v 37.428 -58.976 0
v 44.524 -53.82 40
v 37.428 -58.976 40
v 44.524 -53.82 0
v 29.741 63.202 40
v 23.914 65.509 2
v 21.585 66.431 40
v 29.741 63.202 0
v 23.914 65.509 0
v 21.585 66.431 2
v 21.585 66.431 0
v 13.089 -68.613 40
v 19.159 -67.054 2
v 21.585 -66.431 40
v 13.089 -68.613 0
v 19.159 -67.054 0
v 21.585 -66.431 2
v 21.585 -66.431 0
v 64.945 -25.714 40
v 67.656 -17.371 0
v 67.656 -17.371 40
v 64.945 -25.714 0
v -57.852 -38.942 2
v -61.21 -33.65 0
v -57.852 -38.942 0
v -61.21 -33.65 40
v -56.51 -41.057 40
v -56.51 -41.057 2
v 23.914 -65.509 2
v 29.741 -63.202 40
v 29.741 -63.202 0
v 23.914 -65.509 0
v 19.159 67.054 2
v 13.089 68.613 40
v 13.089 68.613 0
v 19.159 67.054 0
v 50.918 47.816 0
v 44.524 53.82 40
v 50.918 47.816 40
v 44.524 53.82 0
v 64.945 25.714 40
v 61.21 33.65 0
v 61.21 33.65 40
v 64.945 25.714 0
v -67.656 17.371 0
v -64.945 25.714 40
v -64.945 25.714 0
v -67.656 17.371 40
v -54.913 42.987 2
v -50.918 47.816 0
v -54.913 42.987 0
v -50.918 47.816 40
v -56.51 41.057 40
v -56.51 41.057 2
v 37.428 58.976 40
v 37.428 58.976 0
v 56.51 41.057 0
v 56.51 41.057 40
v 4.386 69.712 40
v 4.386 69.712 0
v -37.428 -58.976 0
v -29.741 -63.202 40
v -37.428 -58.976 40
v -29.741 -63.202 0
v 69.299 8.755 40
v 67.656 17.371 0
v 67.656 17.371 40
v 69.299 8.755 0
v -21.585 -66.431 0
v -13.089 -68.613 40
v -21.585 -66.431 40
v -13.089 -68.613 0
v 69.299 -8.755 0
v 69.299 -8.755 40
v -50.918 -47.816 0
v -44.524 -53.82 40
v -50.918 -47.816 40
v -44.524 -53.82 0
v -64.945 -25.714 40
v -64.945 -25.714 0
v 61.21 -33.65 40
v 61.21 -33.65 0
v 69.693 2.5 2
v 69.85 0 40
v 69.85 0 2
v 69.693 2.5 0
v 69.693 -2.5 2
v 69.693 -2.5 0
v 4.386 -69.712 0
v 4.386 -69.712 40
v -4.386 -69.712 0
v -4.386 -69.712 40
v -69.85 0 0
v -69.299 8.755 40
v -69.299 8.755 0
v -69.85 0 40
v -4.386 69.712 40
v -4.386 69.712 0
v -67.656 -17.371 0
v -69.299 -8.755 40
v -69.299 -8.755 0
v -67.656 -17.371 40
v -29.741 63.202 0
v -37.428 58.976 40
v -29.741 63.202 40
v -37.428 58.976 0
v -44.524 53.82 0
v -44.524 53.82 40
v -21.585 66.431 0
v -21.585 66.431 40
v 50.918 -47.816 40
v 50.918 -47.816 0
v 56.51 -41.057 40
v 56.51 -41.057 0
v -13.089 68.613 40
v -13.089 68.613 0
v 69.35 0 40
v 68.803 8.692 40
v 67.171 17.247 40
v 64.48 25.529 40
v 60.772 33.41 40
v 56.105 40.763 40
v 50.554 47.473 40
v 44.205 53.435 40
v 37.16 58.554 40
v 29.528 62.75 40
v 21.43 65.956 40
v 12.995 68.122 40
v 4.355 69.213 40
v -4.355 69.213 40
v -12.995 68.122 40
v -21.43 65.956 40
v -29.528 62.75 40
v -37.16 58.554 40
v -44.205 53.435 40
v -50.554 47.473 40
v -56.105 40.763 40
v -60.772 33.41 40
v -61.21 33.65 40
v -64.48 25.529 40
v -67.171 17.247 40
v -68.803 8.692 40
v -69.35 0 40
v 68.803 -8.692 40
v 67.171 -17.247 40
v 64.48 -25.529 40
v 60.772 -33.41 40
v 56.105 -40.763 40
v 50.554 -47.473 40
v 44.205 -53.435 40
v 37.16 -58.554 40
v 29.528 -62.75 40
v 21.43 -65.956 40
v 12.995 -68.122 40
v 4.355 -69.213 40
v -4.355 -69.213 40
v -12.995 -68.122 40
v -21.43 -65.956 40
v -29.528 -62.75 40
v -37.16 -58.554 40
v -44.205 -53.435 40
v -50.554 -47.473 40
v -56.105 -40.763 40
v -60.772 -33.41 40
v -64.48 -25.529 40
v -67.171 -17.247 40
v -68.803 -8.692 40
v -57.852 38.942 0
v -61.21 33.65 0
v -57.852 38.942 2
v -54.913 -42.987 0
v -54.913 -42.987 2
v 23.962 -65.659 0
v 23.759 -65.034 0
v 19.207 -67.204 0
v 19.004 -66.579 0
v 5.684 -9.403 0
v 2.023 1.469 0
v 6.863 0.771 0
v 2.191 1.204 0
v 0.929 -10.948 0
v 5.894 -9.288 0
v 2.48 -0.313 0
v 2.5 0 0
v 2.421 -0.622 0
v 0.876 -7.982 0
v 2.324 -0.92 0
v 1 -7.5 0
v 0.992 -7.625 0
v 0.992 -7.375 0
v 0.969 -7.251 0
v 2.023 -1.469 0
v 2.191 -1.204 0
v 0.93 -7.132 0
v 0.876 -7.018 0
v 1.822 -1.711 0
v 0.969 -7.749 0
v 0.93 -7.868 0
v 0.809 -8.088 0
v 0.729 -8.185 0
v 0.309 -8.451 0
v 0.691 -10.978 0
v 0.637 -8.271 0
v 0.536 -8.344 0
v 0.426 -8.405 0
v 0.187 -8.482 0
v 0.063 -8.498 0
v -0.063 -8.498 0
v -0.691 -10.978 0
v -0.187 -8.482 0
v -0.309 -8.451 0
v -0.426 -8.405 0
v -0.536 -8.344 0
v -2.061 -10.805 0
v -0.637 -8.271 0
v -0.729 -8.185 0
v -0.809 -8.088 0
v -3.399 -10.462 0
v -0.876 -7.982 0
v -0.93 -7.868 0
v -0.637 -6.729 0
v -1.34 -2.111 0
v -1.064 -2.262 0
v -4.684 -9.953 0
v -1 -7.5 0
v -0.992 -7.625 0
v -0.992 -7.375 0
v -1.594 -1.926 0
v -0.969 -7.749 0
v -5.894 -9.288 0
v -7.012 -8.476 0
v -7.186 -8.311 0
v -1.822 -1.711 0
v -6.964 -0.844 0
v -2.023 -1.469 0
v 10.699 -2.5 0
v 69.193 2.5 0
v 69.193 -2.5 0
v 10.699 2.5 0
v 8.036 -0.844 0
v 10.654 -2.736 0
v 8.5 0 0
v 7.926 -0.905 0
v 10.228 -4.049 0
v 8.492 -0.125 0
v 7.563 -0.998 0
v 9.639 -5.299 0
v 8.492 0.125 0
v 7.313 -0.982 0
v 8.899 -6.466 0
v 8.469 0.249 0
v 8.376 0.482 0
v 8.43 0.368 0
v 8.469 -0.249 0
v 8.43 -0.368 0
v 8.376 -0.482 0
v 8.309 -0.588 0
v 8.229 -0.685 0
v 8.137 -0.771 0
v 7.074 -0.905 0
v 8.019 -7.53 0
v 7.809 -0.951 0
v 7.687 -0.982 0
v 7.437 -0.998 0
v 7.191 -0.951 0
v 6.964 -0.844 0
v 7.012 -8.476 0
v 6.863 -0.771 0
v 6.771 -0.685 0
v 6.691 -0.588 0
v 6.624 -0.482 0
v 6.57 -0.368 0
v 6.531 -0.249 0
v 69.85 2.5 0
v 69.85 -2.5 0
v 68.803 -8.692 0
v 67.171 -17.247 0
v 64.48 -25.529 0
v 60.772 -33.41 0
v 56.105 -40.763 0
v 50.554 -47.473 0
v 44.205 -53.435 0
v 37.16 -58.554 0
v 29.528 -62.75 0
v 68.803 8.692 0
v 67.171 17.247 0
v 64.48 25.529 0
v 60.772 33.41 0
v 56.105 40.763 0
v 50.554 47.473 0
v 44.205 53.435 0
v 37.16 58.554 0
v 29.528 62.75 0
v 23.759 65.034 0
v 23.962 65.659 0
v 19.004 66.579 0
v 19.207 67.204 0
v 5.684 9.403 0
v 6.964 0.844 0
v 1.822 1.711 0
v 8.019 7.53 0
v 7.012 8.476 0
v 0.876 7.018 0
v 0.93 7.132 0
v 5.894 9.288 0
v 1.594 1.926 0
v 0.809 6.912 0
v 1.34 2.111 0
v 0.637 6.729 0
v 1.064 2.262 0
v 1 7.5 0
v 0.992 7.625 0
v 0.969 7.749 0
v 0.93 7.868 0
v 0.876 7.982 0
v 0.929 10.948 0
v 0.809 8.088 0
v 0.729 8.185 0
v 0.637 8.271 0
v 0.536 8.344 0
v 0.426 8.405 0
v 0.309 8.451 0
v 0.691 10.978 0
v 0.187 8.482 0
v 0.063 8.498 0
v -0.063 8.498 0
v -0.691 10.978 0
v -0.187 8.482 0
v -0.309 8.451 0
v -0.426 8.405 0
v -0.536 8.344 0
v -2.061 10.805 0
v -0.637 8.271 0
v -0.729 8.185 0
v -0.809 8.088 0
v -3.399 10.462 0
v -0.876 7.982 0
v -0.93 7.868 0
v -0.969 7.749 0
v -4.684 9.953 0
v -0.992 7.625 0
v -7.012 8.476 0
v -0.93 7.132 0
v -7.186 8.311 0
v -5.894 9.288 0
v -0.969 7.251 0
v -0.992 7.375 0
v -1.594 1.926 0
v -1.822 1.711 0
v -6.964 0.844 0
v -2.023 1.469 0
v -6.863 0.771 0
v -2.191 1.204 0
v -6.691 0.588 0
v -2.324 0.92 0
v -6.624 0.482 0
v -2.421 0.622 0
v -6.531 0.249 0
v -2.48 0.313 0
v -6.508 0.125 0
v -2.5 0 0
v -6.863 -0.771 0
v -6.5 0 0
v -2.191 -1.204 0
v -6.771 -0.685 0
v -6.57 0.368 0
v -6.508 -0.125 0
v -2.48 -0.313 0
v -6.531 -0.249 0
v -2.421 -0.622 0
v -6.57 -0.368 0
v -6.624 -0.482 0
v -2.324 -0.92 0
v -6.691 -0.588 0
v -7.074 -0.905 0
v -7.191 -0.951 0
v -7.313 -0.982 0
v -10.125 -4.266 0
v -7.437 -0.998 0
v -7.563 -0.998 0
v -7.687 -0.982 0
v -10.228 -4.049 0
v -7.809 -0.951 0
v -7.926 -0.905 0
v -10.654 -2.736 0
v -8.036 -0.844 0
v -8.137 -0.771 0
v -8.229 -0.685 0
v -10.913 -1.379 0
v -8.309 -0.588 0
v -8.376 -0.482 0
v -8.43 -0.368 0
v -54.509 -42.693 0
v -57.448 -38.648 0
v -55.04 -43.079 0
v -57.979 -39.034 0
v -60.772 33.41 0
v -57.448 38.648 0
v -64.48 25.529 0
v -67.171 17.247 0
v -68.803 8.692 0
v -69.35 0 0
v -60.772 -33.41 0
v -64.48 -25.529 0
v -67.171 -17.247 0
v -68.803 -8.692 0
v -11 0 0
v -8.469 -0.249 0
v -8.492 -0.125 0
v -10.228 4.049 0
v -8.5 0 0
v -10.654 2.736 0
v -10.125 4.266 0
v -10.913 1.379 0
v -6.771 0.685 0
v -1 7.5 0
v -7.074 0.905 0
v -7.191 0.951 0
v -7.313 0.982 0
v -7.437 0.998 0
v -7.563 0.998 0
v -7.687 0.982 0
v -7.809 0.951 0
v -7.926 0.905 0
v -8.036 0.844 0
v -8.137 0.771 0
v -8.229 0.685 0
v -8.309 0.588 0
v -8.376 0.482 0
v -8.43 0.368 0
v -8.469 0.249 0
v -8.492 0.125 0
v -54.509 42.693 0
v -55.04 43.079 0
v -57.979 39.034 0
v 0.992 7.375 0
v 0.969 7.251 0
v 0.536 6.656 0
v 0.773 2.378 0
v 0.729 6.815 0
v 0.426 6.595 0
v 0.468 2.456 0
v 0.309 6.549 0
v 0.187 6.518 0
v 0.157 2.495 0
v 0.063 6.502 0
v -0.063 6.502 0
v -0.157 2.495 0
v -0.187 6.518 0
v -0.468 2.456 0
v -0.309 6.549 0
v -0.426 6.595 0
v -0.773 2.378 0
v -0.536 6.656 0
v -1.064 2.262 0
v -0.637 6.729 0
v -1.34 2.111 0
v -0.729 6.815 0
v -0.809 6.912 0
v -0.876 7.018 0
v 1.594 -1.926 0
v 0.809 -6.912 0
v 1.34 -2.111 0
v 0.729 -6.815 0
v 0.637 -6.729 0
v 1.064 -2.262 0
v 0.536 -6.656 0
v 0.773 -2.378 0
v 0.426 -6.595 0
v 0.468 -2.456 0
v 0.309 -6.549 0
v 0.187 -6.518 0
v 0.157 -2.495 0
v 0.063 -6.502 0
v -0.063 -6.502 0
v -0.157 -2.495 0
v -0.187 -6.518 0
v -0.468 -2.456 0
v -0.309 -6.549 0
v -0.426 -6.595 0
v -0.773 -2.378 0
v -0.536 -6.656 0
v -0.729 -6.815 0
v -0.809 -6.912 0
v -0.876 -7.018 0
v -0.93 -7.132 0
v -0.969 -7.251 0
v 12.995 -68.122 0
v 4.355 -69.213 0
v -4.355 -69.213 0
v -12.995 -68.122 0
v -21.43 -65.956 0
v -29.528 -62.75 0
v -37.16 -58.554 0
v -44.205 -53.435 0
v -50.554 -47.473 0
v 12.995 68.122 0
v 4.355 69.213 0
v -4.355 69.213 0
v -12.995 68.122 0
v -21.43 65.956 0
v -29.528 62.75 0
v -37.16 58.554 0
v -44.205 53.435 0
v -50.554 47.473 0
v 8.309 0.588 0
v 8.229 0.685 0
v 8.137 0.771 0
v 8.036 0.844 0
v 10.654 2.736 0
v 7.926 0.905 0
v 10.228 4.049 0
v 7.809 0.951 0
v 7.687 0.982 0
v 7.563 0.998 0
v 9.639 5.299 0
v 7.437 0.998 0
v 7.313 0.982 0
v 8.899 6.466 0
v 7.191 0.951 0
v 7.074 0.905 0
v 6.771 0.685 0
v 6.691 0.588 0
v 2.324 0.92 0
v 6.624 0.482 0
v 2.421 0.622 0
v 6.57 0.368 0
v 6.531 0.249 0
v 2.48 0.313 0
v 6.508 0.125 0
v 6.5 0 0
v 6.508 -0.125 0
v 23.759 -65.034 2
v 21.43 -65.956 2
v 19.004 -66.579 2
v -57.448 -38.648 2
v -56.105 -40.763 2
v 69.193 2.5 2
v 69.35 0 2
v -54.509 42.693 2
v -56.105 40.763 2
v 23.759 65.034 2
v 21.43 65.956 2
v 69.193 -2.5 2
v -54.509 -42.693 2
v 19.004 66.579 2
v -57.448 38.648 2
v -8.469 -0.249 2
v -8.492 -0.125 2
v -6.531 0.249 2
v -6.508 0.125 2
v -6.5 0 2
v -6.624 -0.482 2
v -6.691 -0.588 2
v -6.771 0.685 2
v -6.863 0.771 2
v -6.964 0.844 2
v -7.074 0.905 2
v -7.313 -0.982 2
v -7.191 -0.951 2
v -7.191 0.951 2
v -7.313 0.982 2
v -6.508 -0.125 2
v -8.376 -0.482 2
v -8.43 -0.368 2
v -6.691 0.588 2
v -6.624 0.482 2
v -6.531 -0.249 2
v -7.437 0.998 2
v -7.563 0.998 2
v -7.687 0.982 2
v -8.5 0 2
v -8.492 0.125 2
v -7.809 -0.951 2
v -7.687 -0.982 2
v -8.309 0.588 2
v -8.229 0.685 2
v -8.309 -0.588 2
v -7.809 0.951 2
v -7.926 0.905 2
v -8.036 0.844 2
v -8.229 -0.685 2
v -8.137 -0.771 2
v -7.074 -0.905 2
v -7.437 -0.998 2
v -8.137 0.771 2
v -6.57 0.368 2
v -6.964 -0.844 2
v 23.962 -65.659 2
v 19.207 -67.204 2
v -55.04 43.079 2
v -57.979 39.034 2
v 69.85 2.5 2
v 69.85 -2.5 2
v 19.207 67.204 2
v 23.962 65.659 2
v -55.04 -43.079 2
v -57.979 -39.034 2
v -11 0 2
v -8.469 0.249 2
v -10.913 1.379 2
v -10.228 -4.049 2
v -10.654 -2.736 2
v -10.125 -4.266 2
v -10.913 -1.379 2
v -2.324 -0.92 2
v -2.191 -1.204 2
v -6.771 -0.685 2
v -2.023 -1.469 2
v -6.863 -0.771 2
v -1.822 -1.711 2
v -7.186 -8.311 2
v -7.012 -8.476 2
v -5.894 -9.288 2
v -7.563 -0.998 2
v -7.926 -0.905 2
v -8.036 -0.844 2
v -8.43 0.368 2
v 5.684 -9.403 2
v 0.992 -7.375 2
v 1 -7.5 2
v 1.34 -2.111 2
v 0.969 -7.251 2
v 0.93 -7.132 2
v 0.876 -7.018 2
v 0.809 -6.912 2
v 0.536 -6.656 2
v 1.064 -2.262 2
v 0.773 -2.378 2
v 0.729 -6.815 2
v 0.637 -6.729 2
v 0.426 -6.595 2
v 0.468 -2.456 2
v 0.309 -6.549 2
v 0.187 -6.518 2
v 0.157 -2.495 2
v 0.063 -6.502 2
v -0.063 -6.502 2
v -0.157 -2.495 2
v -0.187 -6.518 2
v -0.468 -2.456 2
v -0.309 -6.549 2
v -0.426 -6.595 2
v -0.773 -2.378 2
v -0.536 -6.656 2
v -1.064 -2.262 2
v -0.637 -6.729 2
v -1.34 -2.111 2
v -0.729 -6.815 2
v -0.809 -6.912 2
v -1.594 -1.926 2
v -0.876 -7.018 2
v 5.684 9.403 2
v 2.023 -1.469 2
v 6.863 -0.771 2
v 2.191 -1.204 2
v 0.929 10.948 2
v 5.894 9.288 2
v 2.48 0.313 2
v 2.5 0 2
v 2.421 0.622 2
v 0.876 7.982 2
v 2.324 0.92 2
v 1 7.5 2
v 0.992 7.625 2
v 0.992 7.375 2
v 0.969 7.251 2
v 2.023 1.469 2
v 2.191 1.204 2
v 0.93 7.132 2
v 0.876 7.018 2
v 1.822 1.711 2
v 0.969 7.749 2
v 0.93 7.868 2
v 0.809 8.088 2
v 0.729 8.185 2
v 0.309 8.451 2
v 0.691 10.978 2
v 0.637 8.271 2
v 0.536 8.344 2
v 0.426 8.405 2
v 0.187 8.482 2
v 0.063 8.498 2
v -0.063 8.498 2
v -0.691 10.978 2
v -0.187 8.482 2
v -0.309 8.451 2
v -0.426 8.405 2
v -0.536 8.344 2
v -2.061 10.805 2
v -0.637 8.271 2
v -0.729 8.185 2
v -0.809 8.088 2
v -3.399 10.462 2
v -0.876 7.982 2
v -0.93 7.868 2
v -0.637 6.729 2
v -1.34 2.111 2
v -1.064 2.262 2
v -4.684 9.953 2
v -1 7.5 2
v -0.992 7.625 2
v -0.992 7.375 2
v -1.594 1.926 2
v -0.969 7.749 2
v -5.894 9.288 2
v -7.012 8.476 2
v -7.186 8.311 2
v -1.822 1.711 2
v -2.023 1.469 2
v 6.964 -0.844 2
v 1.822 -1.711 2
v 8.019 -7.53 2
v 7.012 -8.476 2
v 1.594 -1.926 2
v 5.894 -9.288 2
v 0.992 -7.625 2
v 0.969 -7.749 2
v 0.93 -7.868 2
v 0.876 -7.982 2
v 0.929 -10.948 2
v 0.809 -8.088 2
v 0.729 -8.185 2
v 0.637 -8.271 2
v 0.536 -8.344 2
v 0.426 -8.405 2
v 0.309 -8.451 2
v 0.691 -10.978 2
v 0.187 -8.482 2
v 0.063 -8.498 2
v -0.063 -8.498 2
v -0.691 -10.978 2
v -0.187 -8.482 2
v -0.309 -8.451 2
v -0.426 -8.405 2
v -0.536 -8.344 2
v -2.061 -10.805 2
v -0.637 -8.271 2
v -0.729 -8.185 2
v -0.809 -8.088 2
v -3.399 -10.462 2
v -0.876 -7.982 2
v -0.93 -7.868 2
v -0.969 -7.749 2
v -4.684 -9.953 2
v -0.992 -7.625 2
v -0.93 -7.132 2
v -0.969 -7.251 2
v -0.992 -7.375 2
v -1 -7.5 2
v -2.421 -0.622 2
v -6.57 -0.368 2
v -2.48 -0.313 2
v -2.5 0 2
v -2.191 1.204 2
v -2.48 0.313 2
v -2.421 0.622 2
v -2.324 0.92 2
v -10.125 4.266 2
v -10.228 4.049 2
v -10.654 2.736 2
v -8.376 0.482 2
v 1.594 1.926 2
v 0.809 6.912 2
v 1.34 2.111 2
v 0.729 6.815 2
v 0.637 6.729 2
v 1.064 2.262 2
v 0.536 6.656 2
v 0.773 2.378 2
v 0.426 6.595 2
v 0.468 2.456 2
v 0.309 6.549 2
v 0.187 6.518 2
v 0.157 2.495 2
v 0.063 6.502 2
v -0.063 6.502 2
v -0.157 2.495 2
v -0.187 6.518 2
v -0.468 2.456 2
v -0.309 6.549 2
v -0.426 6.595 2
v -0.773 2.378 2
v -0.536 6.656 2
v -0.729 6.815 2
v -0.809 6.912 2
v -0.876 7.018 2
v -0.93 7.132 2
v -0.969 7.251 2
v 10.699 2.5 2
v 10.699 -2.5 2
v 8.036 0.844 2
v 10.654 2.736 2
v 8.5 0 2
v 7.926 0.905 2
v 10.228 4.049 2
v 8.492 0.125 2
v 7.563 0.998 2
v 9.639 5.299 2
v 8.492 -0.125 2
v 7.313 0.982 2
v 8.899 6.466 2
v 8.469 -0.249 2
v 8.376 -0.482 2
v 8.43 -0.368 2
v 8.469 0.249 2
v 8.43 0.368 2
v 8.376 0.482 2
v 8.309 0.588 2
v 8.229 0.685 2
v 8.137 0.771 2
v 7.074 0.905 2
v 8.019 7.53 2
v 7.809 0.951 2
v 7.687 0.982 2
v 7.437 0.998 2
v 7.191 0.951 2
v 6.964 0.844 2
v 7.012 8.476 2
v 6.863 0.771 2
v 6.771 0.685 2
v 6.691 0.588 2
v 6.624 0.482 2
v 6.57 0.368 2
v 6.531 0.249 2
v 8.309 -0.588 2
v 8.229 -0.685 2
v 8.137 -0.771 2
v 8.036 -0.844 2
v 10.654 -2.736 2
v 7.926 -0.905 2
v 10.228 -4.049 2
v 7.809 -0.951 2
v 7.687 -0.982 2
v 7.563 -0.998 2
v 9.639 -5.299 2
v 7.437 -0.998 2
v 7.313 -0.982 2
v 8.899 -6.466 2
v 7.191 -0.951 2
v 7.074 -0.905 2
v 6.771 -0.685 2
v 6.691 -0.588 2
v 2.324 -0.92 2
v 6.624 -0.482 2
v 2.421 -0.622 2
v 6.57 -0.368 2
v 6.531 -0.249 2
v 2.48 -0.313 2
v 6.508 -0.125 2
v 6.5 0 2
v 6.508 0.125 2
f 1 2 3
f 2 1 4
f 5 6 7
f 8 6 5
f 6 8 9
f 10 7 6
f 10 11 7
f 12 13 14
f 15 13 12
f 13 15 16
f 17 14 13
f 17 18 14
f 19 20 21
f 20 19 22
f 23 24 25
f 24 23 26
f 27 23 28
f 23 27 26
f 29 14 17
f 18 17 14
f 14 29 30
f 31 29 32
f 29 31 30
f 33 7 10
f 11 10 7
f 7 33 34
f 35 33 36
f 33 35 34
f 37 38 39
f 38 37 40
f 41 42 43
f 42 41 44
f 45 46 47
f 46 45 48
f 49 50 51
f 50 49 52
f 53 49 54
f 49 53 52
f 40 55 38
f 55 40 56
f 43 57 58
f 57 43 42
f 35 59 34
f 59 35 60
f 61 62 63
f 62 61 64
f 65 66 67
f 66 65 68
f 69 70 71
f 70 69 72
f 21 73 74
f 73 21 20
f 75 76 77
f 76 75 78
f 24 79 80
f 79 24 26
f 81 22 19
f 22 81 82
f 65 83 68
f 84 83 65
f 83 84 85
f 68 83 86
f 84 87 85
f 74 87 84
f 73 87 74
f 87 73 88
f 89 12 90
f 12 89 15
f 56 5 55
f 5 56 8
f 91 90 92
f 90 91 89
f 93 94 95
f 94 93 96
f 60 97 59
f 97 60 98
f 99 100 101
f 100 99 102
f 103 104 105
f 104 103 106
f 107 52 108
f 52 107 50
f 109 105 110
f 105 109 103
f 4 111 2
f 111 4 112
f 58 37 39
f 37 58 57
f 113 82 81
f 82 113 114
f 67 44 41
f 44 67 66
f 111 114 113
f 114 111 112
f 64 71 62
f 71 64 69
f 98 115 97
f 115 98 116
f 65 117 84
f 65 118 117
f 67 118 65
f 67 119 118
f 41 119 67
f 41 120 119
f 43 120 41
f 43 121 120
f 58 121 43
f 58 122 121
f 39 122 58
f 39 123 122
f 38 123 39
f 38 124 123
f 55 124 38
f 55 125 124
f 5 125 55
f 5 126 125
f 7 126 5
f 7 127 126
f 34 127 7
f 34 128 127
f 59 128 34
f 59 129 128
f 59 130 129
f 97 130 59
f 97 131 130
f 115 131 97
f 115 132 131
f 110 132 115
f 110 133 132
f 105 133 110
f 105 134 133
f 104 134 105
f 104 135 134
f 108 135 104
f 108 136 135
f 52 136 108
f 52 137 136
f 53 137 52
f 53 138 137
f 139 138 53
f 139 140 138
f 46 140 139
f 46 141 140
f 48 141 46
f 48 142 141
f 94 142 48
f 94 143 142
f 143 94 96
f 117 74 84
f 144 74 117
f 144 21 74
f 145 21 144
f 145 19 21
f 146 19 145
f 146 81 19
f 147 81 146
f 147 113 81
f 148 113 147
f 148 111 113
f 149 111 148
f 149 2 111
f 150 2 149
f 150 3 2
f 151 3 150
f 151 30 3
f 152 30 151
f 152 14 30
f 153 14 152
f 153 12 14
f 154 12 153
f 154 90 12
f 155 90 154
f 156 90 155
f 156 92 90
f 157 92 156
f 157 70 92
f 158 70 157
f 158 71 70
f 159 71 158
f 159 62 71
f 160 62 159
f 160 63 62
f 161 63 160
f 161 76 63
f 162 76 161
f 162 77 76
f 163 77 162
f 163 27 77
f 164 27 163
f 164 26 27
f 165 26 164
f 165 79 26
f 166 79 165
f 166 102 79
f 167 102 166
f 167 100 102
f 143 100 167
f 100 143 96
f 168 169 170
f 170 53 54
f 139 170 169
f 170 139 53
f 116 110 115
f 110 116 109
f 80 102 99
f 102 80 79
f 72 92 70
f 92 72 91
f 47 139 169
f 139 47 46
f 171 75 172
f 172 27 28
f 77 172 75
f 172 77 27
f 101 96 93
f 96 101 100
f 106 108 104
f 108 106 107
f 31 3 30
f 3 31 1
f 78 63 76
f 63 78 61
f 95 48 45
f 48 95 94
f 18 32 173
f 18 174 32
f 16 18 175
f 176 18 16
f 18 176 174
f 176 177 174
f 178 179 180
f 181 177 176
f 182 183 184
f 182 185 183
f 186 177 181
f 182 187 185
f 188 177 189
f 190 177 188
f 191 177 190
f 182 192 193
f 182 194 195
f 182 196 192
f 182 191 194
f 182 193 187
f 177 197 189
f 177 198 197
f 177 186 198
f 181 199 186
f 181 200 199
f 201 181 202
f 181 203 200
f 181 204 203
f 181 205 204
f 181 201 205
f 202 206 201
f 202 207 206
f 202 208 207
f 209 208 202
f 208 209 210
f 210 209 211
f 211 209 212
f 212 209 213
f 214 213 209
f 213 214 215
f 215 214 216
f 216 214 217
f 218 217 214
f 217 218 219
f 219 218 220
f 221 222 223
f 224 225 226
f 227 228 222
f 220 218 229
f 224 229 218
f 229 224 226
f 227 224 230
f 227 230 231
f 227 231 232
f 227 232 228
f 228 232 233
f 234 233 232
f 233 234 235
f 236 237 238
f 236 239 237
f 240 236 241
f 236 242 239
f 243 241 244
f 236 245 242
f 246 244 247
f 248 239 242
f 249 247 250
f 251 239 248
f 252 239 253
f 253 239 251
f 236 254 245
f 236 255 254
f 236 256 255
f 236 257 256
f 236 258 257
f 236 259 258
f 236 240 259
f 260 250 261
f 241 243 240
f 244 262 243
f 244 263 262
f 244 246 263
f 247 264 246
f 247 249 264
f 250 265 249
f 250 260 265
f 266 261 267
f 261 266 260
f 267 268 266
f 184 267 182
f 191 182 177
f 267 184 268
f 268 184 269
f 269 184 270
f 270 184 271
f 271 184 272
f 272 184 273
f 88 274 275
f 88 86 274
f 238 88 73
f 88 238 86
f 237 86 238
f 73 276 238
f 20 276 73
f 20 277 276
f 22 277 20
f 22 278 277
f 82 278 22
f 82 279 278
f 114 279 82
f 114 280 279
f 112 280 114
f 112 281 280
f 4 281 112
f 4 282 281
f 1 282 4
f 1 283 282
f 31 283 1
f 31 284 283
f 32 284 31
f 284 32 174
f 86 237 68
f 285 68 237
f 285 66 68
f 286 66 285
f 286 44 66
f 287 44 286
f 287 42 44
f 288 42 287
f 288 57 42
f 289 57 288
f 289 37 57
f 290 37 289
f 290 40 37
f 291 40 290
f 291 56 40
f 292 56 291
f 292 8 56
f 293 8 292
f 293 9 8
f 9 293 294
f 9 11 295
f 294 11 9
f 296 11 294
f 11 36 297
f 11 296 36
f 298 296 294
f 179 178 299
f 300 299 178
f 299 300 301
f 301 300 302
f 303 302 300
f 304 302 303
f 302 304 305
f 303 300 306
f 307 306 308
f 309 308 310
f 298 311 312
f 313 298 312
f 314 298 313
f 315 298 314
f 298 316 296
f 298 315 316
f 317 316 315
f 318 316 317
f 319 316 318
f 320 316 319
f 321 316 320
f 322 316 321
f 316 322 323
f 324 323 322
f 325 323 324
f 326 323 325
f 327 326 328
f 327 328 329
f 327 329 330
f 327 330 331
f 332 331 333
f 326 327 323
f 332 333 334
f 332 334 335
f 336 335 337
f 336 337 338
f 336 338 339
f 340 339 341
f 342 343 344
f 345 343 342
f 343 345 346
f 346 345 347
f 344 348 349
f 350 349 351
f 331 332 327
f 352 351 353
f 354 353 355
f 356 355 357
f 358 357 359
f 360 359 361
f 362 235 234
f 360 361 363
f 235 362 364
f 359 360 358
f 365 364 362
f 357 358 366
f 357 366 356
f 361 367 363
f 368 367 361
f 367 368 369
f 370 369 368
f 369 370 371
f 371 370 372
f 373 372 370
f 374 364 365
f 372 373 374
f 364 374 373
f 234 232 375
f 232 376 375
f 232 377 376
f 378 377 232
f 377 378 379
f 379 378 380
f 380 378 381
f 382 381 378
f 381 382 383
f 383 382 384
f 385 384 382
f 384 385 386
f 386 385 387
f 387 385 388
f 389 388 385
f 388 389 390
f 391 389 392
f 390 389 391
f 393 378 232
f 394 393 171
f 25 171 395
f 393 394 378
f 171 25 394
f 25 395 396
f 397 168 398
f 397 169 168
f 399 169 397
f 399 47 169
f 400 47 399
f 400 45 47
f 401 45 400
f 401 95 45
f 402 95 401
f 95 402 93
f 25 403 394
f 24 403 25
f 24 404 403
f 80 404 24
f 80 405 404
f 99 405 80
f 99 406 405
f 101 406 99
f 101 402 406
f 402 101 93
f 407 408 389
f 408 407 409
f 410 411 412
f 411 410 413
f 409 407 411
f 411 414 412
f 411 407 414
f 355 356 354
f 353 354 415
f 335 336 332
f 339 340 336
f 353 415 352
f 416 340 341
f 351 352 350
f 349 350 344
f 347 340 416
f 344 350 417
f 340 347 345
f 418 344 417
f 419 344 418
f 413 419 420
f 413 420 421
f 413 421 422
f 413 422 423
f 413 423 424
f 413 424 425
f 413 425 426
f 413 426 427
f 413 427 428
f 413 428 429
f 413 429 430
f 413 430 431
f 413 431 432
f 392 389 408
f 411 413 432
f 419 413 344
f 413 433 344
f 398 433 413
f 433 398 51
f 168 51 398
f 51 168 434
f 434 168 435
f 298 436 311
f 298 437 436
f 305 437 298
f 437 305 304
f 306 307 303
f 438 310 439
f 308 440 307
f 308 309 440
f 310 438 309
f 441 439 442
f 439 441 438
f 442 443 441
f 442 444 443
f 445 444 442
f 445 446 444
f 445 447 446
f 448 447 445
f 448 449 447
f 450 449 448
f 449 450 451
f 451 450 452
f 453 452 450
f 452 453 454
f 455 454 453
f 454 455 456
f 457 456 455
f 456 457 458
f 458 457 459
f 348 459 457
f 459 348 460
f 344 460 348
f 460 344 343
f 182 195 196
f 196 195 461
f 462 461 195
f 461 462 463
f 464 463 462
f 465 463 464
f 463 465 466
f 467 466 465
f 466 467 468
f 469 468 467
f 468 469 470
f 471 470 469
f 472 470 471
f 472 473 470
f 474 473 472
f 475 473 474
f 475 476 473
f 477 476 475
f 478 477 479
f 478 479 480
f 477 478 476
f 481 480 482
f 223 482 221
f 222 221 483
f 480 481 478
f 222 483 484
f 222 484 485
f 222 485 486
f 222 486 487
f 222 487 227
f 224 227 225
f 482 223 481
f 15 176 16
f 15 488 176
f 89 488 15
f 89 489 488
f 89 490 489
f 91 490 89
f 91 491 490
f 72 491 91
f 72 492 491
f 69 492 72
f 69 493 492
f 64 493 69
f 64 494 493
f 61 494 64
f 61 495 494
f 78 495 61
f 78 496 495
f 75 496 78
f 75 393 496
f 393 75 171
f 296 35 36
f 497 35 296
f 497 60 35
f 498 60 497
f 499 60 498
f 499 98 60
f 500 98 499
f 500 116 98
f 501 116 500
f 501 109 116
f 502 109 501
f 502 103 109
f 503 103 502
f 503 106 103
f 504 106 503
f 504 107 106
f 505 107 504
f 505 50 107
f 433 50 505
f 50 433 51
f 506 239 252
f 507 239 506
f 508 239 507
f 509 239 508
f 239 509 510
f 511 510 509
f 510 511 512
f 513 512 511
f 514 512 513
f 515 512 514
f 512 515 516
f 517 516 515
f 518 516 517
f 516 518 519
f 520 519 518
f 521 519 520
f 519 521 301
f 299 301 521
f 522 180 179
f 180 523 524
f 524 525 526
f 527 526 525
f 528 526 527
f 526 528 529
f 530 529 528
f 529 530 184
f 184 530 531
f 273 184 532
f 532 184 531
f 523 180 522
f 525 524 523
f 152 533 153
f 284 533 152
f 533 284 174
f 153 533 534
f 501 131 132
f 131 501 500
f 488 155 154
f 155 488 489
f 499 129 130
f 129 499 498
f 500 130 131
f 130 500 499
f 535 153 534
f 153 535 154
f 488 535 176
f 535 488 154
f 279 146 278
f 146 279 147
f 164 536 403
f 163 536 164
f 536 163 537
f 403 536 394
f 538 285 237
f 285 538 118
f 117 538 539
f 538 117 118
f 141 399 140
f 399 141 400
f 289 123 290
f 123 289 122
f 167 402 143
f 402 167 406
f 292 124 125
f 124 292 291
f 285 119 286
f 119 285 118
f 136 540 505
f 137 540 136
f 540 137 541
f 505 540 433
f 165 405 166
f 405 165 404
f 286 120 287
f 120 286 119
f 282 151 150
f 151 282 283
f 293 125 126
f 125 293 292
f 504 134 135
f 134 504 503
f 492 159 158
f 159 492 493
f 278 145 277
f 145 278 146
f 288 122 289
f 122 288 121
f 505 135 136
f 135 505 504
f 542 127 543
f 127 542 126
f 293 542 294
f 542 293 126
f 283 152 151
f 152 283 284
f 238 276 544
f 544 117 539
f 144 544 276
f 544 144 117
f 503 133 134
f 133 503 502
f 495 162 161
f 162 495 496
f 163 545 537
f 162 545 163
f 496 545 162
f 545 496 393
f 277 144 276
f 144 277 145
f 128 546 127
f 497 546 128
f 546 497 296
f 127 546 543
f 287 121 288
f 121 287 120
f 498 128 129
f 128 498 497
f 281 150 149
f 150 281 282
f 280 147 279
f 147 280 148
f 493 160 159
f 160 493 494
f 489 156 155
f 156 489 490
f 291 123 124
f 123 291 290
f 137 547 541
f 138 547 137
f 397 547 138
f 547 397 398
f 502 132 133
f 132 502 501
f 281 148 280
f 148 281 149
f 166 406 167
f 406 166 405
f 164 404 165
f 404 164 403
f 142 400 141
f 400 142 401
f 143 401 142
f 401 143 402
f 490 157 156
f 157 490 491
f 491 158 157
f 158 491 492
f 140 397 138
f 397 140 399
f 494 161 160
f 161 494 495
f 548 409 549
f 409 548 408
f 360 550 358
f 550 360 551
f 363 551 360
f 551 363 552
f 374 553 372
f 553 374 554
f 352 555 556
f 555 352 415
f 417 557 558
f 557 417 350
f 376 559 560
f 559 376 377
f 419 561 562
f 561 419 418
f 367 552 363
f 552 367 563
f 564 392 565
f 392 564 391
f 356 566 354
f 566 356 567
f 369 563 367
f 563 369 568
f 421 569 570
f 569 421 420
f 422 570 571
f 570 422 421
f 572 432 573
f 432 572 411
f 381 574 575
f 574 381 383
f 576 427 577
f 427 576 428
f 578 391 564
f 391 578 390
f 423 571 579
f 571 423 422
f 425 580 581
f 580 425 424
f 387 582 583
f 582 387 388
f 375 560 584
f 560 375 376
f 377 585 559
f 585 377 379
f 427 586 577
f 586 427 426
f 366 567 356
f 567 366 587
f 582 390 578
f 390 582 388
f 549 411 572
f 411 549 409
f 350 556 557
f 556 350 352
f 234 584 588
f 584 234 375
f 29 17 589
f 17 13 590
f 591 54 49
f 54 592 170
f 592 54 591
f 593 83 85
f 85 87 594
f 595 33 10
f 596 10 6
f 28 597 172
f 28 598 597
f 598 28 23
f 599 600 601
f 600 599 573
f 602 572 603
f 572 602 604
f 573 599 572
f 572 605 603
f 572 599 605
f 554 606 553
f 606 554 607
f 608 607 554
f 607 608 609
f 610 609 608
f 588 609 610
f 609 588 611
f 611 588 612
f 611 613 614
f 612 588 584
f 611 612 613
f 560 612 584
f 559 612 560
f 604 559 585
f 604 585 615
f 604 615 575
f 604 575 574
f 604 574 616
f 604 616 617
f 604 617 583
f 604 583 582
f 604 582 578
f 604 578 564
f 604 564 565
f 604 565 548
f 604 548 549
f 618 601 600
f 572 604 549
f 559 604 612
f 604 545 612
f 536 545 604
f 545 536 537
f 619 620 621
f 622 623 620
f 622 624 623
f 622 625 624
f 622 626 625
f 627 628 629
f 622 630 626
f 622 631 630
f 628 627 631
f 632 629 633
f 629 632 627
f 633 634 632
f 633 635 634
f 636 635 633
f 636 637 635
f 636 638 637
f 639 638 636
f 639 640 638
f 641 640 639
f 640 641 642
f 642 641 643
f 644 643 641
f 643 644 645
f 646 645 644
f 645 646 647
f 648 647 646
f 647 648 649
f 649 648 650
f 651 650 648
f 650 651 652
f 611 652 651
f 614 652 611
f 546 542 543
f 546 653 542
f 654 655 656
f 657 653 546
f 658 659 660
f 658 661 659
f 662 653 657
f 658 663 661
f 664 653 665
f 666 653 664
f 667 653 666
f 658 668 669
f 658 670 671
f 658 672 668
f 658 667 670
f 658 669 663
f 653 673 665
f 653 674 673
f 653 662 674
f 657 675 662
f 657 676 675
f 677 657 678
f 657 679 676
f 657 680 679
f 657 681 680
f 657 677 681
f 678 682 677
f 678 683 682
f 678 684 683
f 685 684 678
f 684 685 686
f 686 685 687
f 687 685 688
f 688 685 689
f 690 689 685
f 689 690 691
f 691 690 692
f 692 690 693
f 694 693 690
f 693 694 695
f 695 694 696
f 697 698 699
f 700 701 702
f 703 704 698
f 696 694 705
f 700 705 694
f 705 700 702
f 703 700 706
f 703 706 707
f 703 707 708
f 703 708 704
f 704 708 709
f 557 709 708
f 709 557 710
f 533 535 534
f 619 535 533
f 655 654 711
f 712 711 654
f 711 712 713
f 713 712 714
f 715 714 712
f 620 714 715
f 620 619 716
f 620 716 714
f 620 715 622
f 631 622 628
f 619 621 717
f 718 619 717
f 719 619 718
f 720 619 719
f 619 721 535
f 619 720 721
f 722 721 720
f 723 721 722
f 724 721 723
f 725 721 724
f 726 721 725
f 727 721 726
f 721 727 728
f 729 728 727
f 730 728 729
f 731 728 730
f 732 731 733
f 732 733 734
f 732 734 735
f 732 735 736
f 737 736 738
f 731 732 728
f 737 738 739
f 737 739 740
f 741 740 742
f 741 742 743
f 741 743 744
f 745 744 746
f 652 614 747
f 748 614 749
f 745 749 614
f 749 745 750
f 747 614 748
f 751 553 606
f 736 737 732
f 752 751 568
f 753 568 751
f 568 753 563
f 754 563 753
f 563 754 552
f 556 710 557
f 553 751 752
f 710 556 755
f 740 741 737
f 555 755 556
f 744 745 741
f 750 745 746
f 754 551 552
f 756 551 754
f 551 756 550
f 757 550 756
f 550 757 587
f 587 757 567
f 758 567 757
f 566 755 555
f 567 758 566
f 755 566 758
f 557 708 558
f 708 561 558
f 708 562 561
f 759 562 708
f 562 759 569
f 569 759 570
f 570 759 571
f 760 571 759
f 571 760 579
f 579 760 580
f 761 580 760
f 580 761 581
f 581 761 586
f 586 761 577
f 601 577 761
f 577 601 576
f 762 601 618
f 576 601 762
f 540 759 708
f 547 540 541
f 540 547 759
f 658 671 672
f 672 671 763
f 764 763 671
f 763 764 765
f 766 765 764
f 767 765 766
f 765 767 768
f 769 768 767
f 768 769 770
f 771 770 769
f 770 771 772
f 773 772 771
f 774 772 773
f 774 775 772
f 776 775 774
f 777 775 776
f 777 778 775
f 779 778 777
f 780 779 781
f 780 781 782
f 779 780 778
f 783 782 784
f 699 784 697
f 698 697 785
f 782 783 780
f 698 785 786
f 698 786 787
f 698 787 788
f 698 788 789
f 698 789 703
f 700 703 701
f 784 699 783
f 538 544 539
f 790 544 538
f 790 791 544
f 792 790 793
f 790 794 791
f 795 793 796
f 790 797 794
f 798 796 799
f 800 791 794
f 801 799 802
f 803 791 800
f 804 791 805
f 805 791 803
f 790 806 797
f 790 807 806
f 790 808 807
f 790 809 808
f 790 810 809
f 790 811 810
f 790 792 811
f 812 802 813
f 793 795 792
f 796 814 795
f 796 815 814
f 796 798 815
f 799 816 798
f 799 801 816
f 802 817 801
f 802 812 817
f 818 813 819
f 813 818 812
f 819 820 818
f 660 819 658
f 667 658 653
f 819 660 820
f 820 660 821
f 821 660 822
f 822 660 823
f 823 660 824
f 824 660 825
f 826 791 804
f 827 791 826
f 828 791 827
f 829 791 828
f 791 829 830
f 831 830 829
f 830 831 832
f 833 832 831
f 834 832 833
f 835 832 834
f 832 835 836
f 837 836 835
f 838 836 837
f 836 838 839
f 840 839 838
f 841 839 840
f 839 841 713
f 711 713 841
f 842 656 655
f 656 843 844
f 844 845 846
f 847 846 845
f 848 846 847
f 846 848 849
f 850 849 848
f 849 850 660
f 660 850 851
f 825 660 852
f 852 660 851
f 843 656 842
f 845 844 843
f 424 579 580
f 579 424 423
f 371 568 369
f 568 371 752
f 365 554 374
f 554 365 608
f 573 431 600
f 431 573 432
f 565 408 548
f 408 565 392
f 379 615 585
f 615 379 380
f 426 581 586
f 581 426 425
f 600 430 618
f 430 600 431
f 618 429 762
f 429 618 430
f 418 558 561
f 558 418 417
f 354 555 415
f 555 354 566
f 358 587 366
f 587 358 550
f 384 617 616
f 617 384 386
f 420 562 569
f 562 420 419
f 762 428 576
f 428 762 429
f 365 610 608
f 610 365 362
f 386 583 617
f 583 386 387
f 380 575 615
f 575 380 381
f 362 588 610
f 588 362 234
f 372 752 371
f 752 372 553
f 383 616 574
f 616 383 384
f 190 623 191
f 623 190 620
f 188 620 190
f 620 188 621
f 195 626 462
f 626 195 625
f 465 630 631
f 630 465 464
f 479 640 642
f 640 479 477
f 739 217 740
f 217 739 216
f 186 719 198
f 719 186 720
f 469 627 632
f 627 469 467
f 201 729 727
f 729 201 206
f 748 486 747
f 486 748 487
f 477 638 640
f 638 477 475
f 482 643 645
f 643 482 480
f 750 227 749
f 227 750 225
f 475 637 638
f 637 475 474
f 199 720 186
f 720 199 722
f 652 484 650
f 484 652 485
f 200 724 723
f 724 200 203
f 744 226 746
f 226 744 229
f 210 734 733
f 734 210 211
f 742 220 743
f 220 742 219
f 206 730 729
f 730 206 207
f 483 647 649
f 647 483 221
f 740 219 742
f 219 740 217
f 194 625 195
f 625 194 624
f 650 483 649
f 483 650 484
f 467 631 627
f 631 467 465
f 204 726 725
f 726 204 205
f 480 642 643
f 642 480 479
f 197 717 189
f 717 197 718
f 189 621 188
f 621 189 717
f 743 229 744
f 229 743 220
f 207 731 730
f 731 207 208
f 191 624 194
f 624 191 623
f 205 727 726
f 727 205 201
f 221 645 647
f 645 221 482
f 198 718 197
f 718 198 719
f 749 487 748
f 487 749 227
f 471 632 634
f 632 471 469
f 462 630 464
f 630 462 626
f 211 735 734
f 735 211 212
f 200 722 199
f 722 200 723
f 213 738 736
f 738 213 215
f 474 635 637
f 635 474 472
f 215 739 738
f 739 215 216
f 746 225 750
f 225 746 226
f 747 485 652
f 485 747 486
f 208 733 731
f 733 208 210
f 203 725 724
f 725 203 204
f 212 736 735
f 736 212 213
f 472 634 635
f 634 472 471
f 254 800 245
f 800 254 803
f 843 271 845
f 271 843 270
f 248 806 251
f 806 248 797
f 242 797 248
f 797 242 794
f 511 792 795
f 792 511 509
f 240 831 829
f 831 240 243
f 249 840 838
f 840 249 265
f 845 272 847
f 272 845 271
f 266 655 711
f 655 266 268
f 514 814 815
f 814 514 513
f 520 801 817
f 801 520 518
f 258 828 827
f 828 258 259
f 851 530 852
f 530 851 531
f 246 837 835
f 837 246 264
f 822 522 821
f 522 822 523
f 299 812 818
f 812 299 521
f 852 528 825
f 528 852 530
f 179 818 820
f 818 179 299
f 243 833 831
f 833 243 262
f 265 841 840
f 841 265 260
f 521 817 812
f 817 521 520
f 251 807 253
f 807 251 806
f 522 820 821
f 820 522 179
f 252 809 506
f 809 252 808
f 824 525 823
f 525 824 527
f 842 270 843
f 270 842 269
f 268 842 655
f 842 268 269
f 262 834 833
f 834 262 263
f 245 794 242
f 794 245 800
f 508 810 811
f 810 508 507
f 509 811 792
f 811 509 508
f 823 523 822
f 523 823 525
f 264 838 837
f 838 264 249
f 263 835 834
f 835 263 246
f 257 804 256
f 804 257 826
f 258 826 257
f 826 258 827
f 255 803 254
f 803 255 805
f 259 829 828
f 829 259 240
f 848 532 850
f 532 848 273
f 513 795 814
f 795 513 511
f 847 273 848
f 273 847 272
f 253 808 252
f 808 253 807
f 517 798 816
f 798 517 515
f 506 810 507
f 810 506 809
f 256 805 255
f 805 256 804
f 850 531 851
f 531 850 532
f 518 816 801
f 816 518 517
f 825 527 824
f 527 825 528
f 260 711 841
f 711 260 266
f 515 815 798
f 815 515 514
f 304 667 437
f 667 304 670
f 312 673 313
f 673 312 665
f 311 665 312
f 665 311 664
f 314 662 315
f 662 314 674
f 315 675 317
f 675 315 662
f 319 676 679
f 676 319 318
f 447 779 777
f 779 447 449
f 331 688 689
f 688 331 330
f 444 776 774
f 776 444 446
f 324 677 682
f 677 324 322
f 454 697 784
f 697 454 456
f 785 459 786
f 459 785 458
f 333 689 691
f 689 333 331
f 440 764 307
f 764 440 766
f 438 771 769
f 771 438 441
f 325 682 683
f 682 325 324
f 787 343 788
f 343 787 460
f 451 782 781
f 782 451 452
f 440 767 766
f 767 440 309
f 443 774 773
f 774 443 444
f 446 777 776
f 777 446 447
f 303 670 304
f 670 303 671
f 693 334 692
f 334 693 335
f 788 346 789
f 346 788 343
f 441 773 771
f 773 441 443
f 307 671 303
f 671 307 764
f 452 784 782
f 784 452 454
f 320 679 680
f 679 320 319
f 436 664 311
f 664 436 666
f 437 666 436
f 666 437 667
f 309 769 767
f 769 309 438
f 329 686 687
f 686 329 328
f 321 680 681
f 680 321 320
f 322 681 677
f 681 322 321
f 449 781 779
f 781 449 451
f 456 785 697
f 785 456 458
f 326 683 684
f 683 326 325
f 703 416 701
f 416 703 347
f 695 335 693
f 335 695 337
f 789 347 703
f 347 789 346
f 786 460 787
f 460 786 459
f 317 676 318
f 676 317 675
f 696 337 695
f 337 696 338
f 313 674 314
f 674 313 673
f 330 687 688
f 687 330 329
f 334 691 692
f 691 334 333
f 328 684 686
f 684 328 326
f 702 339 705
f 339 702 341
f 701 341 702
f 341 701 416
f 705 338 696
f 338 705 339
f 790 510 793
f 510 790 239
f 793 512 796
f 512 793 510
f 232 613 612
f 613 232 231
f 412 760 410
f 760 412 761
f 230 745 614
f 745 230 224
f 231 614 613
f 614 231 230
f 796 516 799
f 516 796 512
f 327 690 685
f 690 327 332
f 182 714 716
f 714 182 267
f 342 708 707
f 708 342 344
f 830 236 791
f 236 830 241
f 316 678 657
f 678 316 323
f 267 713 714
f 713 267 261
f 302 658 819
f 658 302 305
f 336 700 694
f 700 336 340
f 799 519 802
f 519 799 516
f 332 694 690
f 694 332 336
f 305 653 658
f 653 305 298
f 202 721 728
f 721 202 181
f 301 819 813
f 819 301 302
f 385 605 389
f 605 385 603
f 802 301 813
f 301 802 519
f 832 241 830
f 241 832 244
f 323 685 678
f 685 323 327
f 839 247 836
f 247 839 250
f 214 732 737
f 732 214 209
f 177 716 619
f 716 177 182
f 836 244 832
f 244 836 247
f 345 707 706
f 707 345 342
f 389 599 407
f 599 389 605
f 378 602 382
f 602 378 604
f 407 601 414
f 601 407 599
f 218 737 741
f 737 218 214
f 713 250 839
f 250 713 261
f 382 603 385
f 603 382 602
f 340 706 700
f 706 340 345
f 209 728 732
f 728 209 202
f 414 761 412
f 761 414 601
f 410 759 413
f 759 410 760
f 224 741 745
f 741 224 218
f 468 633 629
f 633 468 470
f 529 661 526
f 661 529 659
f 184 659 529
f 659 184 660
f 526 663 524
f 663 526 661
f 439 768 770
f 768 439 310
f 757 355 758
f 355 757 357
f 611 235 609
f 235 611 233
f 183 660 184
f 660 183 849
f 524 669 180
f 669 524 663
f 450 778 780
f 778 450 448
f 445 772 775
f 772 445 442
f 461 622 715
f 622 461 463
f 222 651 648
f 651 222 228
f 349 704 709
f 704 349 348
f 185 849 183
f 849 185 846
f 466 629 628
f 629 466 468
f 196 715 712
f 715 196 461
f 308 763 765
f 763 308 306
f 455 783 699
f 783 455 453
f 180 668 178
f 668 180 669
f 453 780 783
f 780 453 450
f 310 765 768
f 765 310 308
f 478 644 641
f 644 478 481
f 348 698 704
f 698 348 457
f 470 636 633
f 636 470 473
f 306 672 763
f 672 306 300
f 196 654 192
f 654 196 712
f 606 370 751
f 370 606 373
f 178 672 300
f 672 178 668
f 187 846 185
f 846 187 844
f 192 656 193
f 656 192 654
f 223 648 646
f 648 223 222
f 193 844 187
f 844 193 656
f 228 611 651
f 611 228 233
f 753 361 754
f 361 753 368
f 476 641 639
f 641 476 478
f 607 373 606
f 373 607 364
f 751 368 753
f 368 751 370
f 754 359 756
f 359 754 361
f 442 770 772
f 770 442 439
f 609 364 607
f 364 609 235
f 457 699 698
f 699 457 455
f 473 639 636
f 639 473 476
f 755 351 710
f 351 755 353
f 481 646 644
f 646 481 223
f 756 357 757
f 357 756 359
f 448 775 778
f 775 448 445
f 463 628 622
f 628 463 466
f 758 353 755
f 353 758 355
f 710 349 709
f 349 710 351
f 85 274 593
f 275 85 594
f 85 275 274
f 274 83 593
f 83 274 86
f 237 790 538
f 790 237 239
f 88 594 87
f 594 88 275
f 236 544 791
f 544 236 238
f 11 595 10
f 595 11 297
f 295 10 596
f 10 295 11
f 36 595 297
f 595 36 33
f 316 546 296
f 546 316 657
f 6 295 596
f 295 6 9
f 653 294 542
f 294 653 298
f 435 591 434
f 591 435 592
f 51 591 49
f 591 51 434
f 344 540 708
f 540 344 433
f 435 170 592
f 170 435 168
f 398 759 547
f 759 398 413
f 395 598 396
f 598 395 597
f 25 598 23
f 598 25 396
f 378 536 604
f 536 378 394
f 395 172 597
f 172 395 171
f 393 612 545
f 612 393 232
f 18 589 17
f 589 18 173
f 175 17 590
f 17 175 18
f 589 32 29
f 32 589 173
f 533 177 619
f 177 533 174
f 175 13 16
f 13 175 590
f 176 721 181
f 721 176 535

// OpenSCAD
// shroud

$fn=50;

shroud_height=40;
shroud_diam=5.5*25.4;
wall_thickness=1;

arm_height=2;
arm_width=5;
num_arms=5;

mot_height=arm_height;
motdiam=22;
midhole_diam=5;
screwhole_diam=15;

module shroud() {
    difference() {
        cylinder(shroud_height,d=shroud_diam);
        cylinder(shroud_height,d=shroud_diam-wall_thickness);
    }
}

module mount() {
    difference() {
        cylinder(mot_height,d=motdiam);
        cylinder(mot_height,d=midhole_diam);
        for (k=[-1,1]) {
            #translate([k*screwhole_diam/2,0,0]) cylinder(mot_height,d=2);
            #translate([0,k*screwhole_diam/2,0]) cylinder(mot_height,d=2);
        }
    }
}

module arms() {
    fudge=1;  // make arms connect to motor and shroud
    for (angle=[0:360/num_arms:360]) {
        rotate([0,0,angle])
            translate([motdiam/2-fudge,-arm_width/2,0])
                cube([shroud_diam/2-motdiam/2+fudge,arm_width,arm_height]);
    }
}

module main() {
    shroud();
    mount();
    arms();
}

main();
